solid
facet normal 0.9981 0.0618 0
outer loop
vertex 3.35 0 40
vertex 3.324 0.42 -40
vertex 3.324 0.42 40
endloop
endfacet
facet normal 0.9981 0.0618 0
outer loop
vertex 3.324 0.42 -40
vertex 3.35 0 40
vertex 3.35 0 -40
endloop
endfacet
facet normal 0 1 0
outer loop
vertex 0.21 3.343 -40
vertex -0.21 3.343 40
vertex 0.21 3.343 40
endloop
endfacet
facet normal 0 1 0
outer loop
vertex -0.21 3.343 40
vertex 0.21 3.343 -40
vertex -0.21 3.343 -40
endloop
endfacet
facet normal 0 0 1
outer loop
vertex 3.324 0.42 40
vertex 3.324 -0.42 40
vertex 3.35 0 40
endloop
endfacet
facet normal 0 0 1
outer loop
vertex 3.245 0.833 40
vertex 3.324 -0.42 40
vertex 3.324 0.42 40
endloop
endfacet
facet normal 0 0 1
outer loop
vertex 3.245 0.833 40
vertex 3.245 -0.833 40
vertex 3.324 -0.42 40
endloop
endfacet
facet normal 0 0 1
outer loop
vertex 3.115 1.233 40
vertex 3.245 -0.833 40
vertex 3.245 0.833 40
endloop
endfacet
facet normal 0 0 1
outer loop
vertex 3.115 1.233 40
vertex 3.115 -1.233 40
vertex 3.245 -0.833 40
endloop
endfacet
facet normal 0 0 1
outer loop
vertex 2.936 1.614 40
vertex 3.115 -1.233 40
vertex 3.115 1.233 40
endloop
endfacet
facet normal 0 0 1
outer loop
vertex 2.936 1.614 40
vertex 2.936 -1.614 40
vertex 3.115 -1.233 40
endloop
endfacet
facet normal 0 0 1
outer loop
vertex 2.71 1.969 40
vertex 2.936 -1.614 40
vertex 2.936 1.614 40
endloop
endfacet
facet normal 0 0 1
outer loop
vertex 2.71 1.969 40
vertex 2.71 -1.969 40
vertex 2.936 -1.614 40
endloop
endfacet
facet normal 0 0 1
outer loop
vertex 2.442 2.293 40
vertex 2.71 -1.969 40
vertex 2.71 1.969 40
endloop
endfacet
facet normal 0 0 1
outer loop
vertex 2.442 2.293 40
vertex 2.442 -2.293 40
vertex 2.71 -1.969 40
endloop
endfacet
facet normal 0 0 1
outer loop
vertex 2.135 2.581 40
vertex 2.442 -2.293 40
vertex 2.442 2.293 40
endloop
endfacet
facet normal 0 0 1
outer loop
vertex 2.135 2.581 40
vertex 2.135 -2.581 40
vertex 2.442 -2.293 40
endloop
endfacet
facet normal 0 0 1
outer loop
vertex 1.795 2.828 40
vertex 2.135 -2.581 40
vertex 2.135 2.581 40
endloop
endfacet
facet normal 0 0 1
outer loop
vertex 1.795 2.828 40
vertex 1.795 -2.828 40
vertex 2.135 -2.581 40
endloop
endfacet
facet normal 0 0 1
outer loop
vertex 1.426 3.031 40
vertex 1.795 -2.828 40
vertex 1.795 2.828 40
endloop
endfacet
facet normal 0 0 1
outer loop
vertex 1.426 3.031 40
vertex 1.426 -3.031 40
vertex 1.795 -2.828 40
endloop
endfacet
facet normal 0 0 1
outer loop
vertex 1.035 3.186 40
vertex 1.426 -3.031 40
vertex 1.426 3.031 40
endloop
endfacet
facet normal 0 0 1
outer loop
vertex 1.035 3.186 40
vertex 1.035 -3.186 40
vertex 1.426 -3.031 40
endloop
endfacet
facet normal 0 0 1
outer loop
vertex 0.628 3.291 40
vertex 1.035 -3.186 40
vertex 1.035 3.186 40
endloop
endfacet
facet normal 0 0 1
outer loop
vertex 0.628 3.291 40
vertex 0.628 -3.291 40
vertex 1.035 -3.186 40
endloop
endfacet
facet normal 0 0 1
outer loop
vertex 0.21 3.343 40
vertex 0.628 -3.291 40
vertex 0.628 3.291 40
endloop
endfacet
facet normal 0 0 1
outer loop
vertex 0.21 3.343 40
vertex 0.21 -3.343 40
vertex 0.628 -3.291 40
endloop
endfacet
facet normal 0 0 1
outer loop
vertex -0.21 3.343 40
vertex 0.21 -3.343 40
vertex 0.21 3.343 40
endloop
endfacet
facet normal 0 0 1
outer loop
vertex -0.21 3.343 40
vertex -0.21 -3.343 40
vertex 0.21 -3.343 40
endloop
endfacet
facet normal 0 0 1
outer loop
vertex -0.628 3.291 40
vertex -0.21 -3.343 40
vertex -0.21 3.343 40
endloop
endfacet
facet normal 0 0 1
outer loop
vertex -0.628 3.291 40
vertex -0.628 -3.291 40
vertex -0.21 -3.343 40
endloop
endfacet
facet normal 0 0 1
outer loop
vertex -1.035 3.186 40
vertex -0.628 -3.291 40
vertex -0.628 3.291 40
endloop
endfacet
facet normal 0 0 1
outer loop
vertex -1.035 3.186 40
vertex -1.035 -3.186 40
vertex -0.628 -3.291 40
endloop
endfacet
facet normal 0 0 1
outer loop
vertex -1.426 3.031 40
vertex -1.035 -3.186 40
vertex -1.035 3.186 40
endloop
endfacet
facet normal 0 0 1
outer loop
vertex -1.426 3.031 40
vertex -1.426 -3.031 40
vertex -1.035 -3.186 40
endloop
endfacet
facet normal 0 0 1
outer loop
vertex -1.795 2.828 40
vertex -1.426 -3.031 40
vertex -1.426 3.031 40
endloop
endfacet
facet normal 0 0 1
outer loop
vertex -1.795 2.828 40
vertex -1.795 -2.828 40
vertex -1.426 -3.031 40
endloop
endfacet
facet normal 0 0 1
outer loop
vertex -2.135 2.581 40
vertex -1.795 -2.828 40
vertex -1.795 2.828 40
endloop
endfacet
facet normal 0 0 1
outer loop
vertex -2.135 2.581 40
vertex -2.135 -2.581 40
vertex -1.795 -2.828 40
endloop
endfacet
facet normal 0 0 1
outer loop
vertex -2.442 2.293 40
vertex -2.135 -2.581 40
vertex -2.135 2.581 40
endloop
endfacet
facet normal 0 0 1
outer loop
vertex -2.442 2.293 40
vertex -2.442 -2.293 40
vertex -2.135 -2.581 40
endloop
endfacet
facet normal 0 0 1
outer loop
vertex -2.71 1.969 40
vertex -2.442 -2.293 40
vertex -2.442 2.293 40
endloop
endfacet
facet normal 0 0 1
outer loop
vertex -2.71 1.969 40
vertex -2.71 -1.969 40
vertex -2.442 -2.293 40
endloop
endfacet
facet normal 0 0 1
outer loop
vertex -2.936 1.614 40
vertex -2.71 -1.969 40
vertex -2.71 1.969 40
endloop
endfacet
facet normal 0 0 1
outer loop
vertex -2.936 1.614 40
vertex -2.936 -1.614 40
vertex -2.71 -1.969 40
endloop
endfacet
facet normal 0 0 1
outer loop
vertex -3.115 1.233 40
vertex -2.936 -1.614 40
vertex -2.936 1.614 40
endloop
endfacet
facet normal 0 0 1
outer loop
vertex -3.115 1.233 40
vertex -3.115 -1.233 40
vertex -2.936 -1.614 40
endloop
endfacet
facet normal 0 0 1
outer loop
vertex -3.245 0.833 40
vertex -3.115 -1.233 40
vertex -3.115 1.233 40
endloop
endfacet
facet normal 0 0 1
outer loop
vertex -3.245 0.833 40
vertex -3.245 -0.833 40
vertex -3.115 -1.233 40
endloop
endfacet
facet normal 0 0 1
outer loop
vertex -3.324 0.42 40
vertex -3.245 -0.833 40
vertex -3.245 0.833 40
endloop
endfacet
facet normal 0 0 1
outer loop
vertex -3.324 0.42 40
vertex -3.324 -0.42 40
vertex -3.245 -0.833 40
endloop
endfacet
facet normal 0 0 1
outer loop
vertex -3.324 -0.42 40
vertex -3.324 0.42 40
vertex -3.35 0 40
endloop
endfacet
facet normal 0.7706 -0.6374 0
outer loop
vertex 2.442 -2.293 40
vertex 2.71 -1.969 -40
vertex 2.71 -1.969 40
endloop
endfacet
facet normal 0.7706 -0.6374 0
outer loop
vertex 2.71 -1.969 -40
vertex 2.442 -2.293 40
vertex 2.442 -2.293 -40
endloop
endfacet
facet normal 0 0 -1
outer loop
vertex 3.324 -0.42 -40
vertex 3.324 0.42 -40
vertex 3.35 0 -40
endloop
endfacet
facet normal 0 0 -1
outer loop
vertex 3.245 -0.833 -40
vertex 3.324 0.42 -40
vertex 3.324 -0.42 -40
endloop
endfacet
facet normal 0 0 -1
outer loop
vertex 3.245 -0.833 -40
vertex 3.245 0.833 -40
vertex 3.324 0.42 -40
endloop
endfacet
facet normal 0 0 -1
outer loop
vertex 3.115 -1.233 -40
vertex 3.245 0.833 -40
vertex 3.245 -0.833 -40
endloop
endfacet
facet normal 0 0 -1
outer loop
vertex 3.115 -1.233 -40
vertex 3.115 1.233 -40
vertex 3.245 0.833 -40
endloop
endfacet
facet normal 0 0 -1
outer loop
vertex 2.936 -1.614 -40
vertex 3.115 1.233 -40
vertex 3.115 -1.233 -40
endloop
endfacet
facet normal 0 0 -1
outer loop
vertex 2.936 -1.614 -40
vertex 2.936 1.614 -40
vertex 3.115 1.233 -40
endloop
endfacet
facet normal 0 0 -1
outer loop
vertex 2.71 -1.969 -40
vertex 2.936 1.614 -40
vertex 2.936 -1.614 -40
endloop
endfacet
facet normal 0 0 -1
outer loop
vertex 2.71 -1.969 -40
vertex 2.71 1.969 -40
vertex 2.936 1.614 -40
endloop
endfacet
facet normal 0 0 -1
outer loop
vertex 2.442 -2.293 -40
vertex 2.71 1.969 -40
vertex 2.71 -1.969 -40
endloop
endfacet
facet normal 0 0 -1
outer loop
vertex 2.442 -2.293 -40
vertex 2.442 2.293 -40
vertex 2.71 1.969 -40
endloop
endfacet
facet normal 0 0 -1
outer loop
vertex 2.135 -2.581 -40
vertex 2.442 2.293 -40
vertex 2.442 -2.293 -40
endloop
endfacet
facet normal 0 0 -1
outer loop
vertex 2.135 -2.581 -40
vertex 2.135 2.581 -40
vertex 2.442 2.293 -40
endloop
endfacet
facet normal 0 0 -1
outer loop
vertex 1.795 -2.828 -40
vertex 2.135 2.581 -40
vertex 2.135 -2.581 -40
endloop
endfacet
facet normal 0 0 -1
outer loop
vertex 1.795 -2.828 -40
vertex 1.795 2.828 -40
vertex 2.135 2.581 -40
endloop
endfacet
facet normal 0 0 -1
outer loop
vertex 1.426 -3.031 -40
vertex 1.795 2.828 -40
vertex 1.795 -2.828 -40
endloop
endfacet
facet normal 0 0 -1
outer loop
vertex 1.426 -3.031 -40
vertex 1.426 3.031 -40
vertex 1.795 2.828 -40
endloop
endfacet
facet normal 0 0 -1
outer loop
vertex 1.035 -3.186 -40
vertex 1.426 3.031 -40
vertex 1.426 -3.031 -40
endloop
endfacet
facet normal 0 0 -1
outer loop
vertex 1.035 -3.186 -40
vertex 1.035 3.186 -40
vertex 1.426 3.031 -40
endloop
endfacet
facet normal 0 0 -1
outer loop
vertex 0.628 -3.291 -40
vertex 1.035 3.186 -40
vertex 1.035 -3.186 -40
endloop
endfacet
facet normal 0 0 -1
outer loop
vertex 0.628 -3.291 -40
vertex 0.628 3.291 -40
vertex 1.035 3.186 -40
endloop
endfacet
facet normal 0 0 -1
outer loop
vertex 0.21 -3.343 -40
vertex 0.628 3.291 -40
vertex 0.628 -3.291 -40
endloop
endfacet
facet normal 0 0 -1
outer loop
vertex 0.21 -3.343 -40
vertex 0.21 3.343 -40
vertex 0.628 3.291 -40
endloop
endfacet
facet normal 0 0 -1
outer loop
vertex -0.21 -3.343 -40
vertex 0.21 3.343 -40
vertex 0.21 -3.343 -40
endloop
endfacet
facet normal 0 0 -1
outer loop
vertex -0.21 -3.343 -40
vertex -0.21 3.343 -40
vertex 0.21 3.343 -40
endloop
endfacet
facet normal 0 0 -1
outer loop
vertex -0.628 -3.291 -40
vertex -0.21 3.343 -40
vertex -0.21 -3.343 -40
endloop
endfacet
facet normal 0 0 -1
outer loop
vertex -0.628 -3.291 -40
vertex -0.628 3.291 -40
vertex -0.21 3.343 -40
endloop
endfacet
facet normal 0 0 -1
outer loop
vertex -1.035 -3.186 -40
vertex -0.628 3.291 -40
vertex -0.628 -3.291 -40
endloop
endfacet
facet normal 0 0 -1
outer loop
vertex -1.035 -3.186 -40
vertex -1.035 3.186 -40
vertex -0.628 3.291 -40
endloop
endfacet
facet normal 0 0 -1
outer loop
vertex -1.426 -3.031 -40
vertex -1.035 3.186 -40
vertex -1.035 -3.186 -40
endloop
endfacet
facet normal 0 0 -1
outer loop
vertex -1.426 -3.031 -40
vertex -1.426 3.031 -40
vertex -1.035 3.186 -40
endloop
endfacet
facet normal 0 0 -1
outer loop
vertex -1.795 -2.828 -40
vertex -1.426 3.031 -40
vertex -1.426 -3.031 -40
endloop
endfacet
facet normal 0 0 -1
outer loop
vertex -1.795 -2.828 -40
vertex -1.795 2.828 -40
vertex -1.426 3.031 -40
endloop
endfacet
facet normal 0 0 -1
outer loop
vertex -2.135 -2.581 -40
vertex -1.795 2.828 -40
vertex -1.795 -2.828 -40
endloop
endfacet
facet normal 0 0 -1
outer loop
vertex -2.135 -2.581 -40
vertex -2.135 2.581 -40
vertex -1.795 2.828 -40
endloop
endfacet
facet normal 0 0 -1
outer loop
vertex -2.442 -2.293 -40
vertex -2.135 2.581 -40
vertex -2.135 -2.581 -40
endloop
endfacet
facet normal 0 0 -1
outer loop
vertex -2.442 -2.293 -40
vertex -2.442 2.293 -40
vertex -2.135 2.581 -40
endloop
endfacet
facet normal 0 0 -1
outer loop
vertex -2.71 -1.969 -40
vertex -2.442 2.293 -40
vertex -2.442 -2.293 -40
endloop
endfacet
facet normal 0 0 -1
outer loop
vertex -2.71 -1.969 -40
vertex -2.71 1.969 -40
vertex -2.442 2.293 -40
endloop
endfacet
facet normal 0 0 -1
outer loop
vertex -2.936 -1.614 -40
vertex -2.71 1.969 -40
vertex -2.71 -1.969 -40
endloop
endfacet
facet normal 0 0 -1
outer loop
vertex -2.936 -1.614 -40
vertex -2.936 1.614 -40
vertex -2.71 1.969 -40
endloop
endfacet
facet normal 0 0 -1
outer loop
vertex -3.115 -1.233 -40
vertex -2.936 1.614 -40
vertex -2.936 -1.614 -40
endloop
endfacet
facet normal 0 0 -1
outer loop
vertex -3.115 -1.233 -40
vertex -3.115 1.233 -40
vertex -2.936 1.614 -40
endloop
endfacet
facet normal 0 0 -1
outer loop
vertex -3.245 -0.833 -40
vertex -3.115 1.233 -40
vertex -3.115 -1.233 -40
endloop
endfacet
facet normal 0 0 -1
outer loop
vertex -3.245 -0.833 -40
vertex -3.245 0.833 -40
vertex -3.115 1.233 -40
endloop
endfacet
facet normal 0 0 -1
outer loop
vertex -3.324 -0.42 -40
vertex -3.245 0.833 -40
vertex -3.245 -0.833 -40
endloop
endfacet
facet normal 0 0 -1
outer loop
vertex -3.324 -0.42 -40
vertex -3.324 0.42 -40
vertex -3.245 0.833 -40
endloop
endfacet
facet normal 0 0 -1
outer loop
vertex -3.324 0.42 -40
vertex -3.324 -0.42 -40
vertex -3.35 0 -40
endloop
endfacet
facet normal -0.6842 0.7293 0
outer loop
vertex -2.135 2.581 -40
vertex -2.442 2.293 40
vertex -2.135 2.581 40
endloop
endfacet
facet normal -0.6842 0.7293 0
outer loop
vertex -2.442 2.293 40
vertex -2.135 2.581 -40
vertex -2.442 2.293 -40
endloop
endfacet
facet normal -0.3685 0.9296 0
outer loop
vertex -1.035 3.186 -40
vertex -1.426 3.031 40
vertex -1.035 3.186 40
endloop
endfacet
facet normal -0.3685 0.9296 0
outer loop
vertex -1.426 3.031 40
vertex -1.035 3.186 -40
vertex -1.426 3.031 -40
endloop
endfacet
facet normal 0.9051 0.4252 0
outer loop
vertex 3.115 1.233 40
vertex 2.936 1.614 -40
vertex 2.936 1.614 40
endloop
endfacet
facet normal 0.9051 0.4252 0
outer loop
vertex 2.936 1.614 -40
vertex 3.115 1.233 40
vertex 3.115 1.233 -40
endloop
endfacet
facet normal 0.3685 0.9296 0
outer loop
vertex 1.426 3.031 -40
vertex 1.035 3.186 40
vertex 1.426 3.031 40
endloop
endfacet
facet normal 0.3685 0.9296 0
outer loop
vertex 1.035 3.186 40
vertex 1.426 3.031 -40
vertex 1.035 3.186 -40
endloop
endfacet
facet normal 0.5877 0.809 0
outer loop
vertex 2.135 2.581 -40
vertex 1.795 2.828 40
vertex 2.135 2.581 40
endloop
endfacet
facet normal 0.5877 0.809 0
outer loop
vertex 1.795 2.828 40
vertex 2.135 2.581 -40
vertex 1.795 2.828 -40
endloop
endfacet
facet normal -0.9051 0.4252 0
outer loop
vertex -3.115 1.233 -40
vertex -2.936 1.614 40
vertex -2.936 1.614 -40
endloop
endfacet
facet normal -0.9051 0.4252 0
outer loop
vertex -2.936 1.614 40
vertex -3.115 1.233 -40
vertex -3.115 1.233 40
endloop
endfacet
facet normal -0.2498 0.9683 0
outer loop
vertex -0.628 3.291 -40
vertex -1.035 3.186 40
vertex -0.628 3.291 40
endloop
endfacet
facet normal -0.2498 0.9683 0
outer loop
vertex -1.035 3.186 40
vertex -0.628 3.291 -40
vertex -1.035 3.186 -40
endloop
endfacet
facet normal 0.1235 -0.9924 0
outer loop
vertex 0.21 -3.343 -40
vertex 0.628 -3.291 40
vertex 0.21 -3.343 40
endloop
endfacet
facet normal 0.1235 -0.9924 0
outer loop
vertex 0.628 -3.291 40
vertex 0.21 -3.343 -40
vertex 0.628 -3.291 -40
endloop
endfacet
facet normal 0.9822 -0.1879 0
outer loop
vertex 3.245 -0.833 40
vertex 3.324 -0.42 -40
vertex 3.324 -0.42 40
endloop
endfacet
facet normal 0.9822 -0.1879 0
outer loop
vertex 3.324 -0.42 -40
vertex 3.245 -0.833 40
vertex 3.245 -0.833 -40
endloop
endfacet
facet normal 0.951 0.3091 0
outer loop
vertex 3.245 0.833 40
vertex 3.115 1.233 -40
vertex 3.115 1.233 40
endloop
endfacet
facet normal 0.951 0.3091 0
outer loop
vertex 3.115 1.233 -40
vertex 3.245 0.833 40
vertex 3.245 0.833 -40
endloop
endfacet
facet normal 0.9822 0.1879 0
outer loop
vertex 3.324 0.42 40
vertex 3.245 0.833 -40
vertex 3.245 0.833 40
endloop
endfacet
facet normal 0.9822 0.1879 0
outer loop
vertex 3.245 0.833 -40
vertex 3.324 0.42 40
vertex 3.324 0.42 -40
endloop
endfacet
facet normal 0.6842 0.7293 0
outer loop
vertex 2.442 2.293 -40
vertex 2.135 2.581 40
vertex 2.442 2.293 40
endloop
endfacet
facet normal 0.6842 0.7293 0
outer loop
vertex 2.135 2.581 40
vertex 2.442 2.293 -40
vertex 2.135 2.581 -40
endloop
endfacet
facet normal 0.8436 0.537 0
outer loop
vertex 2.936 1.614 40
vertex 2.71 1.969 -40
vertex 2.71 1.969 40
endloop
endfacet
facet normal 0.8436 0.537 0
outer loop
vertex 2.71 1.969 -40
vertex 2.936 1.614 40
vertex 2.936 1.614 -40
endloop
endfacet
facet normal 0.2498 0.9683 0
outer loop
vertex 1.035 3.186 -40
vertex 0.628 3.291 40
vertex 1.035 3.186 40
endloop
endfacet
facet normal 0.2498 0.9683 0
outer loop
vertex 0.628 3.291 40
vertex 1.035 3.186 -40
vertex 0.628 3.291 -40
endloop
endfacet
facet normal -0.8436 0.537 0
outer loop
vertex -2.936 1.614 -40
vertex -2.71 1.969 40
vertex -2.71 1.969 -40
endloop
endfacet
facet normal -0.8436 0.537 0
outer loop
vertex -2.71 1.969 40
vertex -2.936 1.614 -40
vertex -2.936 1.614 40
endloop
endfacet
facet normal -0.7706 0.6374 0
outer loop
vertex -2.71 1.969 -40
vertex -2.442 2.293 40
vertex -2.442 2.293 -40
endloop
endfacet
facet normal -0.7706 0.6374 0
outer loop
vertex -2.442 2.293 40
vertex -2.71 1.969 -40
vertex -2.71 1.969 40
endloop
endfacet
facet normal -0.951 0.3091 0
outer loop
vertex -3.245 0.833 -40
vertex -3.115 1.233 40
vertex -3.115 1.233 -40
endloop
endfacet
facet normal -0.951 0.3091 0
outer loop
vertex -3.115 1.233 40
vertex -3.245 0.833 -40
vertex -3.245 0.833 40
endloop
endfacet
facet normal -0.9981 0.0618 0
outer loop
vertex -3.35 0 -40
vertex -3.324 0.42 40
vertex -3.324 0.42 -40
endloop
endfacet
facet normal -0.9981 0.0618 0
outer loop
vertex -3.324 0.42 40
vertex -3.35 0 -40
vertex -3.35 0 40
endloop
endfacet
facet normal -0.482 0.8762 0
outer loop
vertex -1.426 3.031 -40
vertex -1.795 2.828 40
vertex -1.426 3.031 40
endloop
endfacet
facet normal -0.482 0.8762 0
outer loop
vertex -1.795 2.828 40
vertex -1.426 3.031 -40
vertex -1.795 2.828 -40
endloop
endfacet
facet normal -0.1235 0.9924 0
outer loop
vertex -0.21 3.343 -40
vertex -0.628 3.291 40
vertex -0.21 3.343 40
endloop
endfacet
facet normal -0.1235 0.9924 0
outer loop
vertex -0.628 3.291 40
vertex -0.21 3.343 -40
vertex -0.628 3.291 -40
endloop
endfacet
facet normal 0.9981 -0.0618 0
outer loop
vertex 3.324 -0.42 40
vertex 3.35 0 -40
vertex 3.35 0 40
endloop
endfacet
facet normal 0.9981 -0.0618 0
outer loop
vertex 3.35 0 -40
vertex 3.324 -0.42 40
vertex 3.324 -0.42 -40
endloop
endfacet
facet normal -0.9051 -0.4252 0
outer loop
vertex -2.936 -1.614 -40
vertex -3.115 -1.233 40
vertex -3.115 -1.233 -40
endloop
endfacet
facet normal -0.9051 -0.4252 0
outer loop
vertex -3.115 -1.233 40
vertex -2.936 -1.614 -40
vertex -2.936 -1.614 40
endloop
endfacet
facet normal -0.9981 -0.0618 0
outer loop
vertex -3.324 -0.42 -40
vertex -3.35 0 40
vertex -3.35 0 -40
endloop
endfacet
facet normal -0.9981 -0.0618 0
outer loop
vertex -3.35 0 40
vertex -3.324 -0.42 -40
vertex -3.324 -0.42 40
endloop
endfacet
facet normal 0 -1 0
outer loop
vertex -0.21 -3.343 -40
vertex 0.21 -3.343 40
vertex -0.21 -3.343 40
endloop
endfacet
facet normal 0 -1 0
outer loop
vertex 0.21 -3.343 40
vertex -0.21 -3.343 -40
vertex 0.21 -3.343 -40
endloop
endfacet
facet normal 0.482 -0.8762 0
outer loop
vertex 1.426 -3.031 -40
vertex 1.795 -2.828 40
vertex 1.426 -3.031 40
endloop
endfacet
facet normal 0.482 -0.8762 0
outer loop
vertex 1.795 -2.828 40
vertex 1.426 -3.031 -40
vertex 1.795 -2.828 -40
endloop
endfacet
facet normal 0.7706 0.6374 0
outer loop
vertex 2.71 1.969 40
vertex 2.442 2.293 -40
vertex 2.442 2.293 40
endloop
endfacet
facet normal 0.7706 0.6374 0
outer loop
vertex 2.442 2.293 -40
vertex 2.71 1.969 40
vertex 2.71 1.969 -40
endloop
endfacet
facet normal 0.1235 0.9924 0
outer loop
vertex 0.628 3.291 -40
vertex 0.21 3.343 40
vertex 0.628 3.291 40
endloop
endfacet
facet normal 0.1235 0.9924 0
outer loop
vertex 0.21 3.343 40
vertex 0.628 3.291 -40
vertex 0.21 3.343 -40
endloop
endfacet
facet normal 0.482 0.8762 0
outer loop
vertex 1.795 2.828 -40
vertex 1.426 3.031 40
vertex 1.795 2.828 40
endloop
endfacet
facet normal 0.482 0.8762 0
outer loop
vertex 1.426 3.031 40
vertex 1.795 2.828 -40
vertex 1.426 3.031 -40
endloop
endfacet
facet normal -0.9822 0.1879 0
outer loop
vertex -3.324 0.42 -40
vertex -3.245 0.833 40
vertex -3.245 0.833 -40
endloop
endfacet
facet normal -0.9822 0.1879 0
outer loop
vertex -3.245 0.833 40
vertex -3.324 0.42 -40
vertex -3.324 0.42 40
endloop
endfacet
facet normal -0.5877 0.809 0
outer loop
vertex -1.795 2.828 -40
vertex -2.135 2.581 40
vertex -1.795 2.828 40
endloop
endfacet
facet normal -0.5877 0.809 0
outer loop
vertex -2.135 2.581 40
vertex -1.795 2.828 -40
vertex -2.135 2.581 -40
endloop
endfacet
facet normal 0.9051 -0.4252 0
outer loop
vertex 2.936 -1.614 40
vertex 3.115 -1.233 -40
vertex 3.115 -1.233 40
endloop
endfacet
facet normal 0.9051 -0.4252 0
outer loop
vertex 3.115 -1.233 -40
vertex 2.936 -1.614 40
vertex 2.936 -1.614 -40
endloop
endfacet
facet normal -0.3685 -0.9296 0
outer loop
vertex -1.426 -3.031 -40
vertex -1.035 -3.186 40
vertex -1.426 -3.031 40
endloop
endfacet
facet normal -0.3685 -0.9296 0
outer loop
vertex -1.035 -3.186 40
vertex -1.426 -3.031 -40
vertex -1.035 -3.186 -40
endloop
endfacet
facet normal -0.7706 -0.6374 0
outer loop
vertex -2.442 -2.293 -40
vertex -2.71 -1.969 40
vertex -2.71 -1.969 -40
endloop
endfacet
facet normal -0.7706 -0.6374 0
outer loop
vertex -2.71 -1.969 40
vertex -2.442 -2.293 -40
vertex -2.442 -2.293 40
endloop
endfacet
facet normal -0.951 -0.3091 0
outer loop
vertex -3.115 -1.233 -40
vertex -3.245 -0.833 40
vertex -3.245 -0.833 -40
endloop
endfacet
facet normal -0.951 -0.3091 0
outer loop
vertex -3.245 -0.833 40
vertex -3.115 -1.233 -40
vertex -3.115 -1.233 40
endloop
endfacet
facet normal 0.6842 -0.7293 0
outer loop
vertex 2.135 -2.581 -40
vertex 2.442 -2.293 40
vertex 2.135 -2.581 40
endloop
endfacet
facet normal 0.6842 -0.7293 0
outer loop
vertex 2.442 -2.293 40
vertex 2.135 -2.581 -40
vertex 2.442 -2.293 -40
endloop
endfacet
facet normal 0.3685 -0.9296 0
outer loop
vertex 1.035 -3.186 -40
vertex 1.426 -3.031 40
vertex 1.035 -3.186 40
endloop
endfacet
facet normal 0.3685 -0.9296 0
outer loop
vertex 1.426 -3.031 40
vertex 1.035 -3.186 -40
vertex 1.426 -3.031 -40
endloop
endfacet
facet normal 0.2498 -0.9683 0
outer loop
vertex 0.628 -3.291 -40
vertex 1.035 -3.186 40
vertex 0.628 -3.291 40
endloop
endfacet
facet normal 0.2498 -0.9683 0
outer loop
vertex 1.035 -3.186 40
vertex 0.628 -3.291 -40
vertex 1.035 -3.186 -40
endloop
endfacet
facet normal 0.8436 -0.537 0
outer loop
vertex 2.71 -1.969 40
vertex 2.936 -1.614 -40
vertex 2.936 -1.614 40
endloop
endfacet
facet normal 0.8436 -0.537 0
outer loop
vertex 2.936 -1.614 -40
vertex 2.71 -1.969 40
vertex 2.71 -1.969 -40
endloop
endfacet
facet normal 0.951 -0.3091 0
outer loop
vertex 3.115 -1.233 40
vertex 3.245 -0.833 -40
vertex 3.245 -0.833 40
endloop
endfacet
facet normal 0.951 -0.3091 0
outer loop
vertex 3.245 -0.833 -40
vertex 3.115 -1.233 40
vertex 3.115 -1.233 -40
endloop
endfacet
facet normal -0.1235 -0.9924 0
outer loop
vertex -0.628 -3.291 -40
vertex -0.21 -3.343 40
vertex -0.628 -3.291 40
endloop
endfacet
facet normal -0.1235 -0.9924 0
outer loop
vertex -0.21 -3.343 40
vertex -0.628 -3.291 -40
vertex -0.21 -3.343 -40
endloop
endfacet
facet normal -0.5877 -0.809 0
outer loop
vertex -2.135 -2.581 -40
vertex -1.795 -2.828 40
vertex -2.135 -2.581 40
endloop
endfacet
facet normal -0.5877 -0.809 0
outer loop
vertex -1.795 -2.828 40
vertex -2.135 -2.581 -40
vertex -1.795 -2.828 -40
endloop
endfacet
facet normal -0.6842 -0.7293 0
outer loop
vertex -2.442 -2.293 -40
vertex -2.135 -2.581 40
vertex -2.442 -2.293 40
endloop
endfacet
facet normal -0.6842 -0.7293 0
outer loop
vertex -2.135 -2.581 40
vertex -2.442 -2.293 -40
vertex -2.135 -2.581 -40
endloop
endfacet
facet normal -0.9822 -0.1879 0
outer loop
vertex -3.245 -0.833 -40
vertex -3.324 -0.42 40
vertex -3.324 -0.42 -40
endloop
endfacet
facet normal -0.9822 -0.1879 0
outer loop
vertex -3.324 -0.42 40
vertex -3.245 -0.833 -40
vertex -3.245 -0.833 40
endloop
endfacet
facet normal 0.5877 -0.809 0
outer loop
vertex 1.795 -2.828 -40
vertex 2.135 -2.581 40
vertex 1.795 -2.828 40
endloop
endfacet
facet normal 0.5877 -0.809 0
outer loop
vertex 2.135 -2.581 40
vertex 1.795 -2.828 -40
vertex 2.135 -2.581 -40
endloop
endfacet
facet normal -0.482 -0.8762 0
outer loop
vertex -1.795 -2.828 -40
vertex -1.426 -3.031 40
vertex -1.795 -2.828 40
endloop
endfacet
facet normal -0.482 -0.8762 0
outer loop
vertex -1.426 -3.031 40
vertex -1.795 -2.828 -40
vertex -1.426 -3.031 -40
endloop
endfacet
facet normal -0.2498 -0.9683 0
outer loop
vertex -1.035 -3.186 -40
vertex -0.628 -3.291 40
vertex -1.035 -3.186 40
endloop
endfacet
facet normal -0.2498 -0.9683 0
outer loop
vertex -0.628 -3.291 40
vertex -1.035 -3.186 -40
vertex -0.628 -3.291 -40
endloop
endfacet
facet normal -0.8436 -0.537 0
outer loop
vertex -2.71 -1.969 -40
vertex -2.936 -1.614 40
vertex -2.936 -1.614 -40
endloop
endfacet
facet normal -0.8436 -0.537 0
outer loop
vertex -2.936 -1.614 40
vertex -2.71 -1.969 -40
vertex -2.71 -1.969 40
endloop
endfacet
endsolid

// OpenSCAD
$fn = 50;


difference() {
	union() {
		translate(v = [0, 0, -40.0000000000]) {
			cylinder(h = 80, r = 3.3500000000);
		}
	}
	union() {
		translate(v = [0, 0, -100.0000000000]) {
			cylinder(h = 200, r = 0);
		}
	}
}
